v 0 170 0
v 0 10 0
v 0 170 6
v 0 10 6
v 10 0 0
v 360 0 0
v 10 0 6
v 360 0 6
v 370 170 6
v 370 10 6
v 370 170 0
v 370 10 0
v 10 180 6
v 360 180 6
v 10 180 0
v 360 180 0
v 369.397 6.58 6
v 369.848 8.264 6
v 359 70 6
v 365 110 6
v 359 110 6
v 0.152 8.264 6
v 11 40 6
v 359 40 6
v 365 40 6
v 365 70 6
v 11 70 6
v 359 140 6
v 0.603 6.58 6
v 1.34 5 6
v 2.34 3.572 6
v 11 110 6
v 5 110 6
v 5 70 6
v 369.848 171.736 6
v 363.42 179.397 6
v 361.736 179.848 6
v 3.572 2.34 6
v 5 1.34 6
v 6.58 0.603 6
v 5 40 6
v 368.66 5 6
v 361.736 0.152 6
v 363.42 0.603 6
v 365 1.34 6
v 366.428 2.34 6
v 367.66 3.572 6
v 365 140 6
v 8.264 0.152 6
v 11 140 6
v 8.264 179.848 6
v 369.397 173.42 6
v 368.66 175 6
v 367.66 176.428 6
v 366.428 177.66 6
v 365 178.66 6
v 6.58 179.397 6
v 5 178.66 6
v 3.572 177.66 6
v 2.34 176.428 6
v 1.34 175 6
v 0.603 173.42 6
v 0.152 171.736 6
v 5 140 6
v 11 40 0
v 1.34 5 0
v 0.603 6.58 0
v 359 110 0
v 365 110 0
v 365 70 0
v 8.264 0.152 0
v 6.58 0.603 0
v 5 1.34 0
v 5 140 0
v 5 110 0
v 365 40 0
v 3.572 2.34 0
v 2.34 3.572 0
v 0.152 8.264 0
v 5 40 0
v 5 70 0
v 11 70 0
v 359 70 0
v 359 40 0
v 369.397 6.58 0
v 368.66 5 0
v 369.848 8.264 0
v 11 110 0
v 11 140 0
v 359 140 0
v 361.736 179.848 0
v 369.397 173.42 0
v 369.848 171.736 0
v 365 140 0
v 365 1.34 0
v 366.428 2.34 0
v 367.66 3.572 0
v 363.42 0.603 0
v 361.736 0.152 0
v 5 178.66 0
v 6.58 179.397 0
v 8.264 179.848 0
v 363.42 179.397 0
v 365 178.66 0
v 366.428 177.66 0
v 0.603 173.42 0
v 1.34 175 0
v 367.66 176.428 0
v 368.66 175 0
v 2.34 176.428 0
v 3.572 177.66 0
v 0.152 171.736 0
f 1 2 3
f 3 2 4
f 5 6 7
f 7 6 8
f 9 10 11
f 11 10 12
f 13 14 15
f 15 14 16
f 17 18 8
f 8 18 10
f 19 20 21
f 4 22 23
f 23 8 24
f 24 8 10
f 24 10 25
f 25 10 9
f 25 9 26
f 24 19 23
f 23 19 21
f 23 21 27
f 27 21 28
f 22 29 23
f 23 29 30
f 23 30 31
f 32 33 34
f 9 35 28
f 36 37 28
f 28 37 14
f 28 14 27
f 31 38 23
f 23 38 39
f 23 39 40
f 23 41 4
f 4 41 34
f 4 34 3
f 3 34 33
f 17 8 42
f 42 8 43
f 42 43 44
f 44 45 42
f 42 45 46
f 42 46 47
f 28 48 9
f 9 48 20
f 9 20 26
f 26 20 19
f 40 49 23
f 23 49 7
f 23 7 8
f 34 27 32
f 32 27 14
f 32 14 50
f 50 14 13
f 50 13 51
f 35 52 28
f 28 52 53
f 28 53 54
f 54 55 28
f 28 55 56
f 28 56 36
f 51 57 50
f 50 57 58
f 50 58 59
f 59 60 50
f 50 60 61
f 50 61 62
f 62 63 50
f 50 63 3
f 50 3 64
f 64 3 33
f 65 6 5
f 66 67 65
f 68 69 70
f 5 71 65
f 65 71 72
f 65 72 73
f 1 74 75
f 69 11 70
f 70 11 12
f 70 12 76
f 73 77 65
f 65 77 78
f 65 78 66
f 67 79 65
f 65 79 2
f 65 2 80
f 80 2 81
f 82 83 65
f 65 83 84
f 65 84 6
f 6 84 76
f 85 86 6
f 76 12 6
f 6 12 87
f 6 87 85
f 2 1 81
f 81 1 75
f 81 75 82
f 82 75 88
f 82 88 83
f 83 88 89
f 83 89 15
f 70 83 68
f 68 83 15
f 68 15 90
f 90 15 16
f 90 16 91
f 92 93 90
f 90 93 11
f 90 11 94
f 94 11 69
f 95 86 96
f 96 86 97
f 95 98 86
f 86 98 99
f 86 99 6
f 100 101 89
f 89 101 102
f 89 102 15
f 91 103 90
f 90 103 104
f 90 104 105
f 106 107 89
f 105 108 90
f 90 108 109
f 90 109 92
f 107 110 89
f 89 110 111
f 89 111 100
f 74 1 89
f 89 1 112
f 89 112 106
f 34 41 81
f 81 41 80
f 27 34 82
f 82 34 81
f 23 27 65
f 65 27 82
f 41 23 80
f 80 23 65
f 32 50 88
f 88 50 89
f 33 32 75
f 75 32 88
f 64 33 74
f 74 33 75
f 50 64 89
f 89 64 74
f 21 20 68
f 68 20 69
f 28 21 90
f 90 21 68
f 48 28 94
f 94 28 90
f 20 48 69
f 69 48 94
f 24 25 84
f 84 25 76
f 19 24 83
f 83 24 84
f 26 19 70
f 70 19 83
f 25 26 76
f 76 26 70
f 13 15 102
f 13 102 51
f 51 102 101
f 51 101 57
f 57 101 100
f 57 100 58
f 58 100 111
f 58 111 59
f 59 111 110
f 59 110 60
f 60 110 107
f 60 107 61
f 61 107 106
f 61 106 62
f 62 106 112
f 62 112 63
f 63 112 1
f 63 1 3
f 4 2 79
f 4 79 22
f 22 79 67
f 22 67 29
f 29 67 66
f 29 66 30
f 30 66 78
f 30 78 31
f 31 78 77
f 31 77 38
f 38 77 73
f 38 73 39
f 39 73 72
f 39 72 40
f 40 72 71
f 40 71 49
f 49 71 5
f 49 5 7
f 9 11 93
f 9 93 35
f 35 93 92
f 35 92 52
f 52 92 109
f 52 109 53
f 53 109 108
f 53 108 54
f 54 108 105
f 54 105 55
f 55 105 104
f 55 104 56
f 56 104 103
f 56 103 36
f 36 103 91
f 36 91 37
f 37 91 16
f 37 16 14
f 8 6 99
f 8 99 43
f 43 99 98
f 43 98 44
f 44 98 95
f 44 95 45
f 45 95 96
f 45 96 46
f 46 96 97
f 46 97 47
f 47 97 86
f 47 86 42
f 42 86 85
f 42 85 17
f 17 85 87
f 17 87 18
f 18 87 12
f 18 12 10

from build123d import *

# Parameters (mm, degrees)
ESQUISSE1_W             = 370
ESQUISSE1_H             = 180
BOSS_EXTRU_1_DEPTH      = 6
ESQUISSE2_W             = 6
ESQUISSE2_H             = 30
ENL_V_MAT_EXTRU_1_DEPTH = 10
CONG_1_R                = 10


with BuildPart() as part:
    # Esquisse1 → Boss.-Extru.1 (new body)
    with BuildSketch(Plane.XY):
        with Locations((185, 90)):
            Rectangle(ESQUISSE1_W, ESQUISSE1_H)
    extrude(amount=BOSS_EXTRU_1_DEPTH)

    # Esquisse2 → Enlèv. mat.-Extru.1 (cut)
    with BuildSketch(Plane.XY.offset(6)):
        with Locations((8, 55)):
            Rectangle(ESQUISSE2_W, ESQUISSE2_H)
        with Locations((8, 125)):
            Rectangle(ESQUISSE2_W, ESQUISSE2_H)
        with Locations((362, 125)):
            Rectangle(ESQUISSE2_W, ESQUISSE2_H)
        with Locations((362, 55)):
            Rectangle(ESQUISSE2_W, ESQUISSE2_H)
    extrude(amount=-ENL_V_MAT_EXTRU_1_DEPTH, mode=Mode.SUBTRACT)

    # Congé1
    cong_1_edges = [part.edges().sort_by_distance(p)[0] for p in [
        (0, 180, 3),
        (370, 180, 3),
        (370, 0, 3),
        (0, 0, 3),
    ]]
    fillet(cong_1_edges, radius=CONG_1_R)


solid = part.part
